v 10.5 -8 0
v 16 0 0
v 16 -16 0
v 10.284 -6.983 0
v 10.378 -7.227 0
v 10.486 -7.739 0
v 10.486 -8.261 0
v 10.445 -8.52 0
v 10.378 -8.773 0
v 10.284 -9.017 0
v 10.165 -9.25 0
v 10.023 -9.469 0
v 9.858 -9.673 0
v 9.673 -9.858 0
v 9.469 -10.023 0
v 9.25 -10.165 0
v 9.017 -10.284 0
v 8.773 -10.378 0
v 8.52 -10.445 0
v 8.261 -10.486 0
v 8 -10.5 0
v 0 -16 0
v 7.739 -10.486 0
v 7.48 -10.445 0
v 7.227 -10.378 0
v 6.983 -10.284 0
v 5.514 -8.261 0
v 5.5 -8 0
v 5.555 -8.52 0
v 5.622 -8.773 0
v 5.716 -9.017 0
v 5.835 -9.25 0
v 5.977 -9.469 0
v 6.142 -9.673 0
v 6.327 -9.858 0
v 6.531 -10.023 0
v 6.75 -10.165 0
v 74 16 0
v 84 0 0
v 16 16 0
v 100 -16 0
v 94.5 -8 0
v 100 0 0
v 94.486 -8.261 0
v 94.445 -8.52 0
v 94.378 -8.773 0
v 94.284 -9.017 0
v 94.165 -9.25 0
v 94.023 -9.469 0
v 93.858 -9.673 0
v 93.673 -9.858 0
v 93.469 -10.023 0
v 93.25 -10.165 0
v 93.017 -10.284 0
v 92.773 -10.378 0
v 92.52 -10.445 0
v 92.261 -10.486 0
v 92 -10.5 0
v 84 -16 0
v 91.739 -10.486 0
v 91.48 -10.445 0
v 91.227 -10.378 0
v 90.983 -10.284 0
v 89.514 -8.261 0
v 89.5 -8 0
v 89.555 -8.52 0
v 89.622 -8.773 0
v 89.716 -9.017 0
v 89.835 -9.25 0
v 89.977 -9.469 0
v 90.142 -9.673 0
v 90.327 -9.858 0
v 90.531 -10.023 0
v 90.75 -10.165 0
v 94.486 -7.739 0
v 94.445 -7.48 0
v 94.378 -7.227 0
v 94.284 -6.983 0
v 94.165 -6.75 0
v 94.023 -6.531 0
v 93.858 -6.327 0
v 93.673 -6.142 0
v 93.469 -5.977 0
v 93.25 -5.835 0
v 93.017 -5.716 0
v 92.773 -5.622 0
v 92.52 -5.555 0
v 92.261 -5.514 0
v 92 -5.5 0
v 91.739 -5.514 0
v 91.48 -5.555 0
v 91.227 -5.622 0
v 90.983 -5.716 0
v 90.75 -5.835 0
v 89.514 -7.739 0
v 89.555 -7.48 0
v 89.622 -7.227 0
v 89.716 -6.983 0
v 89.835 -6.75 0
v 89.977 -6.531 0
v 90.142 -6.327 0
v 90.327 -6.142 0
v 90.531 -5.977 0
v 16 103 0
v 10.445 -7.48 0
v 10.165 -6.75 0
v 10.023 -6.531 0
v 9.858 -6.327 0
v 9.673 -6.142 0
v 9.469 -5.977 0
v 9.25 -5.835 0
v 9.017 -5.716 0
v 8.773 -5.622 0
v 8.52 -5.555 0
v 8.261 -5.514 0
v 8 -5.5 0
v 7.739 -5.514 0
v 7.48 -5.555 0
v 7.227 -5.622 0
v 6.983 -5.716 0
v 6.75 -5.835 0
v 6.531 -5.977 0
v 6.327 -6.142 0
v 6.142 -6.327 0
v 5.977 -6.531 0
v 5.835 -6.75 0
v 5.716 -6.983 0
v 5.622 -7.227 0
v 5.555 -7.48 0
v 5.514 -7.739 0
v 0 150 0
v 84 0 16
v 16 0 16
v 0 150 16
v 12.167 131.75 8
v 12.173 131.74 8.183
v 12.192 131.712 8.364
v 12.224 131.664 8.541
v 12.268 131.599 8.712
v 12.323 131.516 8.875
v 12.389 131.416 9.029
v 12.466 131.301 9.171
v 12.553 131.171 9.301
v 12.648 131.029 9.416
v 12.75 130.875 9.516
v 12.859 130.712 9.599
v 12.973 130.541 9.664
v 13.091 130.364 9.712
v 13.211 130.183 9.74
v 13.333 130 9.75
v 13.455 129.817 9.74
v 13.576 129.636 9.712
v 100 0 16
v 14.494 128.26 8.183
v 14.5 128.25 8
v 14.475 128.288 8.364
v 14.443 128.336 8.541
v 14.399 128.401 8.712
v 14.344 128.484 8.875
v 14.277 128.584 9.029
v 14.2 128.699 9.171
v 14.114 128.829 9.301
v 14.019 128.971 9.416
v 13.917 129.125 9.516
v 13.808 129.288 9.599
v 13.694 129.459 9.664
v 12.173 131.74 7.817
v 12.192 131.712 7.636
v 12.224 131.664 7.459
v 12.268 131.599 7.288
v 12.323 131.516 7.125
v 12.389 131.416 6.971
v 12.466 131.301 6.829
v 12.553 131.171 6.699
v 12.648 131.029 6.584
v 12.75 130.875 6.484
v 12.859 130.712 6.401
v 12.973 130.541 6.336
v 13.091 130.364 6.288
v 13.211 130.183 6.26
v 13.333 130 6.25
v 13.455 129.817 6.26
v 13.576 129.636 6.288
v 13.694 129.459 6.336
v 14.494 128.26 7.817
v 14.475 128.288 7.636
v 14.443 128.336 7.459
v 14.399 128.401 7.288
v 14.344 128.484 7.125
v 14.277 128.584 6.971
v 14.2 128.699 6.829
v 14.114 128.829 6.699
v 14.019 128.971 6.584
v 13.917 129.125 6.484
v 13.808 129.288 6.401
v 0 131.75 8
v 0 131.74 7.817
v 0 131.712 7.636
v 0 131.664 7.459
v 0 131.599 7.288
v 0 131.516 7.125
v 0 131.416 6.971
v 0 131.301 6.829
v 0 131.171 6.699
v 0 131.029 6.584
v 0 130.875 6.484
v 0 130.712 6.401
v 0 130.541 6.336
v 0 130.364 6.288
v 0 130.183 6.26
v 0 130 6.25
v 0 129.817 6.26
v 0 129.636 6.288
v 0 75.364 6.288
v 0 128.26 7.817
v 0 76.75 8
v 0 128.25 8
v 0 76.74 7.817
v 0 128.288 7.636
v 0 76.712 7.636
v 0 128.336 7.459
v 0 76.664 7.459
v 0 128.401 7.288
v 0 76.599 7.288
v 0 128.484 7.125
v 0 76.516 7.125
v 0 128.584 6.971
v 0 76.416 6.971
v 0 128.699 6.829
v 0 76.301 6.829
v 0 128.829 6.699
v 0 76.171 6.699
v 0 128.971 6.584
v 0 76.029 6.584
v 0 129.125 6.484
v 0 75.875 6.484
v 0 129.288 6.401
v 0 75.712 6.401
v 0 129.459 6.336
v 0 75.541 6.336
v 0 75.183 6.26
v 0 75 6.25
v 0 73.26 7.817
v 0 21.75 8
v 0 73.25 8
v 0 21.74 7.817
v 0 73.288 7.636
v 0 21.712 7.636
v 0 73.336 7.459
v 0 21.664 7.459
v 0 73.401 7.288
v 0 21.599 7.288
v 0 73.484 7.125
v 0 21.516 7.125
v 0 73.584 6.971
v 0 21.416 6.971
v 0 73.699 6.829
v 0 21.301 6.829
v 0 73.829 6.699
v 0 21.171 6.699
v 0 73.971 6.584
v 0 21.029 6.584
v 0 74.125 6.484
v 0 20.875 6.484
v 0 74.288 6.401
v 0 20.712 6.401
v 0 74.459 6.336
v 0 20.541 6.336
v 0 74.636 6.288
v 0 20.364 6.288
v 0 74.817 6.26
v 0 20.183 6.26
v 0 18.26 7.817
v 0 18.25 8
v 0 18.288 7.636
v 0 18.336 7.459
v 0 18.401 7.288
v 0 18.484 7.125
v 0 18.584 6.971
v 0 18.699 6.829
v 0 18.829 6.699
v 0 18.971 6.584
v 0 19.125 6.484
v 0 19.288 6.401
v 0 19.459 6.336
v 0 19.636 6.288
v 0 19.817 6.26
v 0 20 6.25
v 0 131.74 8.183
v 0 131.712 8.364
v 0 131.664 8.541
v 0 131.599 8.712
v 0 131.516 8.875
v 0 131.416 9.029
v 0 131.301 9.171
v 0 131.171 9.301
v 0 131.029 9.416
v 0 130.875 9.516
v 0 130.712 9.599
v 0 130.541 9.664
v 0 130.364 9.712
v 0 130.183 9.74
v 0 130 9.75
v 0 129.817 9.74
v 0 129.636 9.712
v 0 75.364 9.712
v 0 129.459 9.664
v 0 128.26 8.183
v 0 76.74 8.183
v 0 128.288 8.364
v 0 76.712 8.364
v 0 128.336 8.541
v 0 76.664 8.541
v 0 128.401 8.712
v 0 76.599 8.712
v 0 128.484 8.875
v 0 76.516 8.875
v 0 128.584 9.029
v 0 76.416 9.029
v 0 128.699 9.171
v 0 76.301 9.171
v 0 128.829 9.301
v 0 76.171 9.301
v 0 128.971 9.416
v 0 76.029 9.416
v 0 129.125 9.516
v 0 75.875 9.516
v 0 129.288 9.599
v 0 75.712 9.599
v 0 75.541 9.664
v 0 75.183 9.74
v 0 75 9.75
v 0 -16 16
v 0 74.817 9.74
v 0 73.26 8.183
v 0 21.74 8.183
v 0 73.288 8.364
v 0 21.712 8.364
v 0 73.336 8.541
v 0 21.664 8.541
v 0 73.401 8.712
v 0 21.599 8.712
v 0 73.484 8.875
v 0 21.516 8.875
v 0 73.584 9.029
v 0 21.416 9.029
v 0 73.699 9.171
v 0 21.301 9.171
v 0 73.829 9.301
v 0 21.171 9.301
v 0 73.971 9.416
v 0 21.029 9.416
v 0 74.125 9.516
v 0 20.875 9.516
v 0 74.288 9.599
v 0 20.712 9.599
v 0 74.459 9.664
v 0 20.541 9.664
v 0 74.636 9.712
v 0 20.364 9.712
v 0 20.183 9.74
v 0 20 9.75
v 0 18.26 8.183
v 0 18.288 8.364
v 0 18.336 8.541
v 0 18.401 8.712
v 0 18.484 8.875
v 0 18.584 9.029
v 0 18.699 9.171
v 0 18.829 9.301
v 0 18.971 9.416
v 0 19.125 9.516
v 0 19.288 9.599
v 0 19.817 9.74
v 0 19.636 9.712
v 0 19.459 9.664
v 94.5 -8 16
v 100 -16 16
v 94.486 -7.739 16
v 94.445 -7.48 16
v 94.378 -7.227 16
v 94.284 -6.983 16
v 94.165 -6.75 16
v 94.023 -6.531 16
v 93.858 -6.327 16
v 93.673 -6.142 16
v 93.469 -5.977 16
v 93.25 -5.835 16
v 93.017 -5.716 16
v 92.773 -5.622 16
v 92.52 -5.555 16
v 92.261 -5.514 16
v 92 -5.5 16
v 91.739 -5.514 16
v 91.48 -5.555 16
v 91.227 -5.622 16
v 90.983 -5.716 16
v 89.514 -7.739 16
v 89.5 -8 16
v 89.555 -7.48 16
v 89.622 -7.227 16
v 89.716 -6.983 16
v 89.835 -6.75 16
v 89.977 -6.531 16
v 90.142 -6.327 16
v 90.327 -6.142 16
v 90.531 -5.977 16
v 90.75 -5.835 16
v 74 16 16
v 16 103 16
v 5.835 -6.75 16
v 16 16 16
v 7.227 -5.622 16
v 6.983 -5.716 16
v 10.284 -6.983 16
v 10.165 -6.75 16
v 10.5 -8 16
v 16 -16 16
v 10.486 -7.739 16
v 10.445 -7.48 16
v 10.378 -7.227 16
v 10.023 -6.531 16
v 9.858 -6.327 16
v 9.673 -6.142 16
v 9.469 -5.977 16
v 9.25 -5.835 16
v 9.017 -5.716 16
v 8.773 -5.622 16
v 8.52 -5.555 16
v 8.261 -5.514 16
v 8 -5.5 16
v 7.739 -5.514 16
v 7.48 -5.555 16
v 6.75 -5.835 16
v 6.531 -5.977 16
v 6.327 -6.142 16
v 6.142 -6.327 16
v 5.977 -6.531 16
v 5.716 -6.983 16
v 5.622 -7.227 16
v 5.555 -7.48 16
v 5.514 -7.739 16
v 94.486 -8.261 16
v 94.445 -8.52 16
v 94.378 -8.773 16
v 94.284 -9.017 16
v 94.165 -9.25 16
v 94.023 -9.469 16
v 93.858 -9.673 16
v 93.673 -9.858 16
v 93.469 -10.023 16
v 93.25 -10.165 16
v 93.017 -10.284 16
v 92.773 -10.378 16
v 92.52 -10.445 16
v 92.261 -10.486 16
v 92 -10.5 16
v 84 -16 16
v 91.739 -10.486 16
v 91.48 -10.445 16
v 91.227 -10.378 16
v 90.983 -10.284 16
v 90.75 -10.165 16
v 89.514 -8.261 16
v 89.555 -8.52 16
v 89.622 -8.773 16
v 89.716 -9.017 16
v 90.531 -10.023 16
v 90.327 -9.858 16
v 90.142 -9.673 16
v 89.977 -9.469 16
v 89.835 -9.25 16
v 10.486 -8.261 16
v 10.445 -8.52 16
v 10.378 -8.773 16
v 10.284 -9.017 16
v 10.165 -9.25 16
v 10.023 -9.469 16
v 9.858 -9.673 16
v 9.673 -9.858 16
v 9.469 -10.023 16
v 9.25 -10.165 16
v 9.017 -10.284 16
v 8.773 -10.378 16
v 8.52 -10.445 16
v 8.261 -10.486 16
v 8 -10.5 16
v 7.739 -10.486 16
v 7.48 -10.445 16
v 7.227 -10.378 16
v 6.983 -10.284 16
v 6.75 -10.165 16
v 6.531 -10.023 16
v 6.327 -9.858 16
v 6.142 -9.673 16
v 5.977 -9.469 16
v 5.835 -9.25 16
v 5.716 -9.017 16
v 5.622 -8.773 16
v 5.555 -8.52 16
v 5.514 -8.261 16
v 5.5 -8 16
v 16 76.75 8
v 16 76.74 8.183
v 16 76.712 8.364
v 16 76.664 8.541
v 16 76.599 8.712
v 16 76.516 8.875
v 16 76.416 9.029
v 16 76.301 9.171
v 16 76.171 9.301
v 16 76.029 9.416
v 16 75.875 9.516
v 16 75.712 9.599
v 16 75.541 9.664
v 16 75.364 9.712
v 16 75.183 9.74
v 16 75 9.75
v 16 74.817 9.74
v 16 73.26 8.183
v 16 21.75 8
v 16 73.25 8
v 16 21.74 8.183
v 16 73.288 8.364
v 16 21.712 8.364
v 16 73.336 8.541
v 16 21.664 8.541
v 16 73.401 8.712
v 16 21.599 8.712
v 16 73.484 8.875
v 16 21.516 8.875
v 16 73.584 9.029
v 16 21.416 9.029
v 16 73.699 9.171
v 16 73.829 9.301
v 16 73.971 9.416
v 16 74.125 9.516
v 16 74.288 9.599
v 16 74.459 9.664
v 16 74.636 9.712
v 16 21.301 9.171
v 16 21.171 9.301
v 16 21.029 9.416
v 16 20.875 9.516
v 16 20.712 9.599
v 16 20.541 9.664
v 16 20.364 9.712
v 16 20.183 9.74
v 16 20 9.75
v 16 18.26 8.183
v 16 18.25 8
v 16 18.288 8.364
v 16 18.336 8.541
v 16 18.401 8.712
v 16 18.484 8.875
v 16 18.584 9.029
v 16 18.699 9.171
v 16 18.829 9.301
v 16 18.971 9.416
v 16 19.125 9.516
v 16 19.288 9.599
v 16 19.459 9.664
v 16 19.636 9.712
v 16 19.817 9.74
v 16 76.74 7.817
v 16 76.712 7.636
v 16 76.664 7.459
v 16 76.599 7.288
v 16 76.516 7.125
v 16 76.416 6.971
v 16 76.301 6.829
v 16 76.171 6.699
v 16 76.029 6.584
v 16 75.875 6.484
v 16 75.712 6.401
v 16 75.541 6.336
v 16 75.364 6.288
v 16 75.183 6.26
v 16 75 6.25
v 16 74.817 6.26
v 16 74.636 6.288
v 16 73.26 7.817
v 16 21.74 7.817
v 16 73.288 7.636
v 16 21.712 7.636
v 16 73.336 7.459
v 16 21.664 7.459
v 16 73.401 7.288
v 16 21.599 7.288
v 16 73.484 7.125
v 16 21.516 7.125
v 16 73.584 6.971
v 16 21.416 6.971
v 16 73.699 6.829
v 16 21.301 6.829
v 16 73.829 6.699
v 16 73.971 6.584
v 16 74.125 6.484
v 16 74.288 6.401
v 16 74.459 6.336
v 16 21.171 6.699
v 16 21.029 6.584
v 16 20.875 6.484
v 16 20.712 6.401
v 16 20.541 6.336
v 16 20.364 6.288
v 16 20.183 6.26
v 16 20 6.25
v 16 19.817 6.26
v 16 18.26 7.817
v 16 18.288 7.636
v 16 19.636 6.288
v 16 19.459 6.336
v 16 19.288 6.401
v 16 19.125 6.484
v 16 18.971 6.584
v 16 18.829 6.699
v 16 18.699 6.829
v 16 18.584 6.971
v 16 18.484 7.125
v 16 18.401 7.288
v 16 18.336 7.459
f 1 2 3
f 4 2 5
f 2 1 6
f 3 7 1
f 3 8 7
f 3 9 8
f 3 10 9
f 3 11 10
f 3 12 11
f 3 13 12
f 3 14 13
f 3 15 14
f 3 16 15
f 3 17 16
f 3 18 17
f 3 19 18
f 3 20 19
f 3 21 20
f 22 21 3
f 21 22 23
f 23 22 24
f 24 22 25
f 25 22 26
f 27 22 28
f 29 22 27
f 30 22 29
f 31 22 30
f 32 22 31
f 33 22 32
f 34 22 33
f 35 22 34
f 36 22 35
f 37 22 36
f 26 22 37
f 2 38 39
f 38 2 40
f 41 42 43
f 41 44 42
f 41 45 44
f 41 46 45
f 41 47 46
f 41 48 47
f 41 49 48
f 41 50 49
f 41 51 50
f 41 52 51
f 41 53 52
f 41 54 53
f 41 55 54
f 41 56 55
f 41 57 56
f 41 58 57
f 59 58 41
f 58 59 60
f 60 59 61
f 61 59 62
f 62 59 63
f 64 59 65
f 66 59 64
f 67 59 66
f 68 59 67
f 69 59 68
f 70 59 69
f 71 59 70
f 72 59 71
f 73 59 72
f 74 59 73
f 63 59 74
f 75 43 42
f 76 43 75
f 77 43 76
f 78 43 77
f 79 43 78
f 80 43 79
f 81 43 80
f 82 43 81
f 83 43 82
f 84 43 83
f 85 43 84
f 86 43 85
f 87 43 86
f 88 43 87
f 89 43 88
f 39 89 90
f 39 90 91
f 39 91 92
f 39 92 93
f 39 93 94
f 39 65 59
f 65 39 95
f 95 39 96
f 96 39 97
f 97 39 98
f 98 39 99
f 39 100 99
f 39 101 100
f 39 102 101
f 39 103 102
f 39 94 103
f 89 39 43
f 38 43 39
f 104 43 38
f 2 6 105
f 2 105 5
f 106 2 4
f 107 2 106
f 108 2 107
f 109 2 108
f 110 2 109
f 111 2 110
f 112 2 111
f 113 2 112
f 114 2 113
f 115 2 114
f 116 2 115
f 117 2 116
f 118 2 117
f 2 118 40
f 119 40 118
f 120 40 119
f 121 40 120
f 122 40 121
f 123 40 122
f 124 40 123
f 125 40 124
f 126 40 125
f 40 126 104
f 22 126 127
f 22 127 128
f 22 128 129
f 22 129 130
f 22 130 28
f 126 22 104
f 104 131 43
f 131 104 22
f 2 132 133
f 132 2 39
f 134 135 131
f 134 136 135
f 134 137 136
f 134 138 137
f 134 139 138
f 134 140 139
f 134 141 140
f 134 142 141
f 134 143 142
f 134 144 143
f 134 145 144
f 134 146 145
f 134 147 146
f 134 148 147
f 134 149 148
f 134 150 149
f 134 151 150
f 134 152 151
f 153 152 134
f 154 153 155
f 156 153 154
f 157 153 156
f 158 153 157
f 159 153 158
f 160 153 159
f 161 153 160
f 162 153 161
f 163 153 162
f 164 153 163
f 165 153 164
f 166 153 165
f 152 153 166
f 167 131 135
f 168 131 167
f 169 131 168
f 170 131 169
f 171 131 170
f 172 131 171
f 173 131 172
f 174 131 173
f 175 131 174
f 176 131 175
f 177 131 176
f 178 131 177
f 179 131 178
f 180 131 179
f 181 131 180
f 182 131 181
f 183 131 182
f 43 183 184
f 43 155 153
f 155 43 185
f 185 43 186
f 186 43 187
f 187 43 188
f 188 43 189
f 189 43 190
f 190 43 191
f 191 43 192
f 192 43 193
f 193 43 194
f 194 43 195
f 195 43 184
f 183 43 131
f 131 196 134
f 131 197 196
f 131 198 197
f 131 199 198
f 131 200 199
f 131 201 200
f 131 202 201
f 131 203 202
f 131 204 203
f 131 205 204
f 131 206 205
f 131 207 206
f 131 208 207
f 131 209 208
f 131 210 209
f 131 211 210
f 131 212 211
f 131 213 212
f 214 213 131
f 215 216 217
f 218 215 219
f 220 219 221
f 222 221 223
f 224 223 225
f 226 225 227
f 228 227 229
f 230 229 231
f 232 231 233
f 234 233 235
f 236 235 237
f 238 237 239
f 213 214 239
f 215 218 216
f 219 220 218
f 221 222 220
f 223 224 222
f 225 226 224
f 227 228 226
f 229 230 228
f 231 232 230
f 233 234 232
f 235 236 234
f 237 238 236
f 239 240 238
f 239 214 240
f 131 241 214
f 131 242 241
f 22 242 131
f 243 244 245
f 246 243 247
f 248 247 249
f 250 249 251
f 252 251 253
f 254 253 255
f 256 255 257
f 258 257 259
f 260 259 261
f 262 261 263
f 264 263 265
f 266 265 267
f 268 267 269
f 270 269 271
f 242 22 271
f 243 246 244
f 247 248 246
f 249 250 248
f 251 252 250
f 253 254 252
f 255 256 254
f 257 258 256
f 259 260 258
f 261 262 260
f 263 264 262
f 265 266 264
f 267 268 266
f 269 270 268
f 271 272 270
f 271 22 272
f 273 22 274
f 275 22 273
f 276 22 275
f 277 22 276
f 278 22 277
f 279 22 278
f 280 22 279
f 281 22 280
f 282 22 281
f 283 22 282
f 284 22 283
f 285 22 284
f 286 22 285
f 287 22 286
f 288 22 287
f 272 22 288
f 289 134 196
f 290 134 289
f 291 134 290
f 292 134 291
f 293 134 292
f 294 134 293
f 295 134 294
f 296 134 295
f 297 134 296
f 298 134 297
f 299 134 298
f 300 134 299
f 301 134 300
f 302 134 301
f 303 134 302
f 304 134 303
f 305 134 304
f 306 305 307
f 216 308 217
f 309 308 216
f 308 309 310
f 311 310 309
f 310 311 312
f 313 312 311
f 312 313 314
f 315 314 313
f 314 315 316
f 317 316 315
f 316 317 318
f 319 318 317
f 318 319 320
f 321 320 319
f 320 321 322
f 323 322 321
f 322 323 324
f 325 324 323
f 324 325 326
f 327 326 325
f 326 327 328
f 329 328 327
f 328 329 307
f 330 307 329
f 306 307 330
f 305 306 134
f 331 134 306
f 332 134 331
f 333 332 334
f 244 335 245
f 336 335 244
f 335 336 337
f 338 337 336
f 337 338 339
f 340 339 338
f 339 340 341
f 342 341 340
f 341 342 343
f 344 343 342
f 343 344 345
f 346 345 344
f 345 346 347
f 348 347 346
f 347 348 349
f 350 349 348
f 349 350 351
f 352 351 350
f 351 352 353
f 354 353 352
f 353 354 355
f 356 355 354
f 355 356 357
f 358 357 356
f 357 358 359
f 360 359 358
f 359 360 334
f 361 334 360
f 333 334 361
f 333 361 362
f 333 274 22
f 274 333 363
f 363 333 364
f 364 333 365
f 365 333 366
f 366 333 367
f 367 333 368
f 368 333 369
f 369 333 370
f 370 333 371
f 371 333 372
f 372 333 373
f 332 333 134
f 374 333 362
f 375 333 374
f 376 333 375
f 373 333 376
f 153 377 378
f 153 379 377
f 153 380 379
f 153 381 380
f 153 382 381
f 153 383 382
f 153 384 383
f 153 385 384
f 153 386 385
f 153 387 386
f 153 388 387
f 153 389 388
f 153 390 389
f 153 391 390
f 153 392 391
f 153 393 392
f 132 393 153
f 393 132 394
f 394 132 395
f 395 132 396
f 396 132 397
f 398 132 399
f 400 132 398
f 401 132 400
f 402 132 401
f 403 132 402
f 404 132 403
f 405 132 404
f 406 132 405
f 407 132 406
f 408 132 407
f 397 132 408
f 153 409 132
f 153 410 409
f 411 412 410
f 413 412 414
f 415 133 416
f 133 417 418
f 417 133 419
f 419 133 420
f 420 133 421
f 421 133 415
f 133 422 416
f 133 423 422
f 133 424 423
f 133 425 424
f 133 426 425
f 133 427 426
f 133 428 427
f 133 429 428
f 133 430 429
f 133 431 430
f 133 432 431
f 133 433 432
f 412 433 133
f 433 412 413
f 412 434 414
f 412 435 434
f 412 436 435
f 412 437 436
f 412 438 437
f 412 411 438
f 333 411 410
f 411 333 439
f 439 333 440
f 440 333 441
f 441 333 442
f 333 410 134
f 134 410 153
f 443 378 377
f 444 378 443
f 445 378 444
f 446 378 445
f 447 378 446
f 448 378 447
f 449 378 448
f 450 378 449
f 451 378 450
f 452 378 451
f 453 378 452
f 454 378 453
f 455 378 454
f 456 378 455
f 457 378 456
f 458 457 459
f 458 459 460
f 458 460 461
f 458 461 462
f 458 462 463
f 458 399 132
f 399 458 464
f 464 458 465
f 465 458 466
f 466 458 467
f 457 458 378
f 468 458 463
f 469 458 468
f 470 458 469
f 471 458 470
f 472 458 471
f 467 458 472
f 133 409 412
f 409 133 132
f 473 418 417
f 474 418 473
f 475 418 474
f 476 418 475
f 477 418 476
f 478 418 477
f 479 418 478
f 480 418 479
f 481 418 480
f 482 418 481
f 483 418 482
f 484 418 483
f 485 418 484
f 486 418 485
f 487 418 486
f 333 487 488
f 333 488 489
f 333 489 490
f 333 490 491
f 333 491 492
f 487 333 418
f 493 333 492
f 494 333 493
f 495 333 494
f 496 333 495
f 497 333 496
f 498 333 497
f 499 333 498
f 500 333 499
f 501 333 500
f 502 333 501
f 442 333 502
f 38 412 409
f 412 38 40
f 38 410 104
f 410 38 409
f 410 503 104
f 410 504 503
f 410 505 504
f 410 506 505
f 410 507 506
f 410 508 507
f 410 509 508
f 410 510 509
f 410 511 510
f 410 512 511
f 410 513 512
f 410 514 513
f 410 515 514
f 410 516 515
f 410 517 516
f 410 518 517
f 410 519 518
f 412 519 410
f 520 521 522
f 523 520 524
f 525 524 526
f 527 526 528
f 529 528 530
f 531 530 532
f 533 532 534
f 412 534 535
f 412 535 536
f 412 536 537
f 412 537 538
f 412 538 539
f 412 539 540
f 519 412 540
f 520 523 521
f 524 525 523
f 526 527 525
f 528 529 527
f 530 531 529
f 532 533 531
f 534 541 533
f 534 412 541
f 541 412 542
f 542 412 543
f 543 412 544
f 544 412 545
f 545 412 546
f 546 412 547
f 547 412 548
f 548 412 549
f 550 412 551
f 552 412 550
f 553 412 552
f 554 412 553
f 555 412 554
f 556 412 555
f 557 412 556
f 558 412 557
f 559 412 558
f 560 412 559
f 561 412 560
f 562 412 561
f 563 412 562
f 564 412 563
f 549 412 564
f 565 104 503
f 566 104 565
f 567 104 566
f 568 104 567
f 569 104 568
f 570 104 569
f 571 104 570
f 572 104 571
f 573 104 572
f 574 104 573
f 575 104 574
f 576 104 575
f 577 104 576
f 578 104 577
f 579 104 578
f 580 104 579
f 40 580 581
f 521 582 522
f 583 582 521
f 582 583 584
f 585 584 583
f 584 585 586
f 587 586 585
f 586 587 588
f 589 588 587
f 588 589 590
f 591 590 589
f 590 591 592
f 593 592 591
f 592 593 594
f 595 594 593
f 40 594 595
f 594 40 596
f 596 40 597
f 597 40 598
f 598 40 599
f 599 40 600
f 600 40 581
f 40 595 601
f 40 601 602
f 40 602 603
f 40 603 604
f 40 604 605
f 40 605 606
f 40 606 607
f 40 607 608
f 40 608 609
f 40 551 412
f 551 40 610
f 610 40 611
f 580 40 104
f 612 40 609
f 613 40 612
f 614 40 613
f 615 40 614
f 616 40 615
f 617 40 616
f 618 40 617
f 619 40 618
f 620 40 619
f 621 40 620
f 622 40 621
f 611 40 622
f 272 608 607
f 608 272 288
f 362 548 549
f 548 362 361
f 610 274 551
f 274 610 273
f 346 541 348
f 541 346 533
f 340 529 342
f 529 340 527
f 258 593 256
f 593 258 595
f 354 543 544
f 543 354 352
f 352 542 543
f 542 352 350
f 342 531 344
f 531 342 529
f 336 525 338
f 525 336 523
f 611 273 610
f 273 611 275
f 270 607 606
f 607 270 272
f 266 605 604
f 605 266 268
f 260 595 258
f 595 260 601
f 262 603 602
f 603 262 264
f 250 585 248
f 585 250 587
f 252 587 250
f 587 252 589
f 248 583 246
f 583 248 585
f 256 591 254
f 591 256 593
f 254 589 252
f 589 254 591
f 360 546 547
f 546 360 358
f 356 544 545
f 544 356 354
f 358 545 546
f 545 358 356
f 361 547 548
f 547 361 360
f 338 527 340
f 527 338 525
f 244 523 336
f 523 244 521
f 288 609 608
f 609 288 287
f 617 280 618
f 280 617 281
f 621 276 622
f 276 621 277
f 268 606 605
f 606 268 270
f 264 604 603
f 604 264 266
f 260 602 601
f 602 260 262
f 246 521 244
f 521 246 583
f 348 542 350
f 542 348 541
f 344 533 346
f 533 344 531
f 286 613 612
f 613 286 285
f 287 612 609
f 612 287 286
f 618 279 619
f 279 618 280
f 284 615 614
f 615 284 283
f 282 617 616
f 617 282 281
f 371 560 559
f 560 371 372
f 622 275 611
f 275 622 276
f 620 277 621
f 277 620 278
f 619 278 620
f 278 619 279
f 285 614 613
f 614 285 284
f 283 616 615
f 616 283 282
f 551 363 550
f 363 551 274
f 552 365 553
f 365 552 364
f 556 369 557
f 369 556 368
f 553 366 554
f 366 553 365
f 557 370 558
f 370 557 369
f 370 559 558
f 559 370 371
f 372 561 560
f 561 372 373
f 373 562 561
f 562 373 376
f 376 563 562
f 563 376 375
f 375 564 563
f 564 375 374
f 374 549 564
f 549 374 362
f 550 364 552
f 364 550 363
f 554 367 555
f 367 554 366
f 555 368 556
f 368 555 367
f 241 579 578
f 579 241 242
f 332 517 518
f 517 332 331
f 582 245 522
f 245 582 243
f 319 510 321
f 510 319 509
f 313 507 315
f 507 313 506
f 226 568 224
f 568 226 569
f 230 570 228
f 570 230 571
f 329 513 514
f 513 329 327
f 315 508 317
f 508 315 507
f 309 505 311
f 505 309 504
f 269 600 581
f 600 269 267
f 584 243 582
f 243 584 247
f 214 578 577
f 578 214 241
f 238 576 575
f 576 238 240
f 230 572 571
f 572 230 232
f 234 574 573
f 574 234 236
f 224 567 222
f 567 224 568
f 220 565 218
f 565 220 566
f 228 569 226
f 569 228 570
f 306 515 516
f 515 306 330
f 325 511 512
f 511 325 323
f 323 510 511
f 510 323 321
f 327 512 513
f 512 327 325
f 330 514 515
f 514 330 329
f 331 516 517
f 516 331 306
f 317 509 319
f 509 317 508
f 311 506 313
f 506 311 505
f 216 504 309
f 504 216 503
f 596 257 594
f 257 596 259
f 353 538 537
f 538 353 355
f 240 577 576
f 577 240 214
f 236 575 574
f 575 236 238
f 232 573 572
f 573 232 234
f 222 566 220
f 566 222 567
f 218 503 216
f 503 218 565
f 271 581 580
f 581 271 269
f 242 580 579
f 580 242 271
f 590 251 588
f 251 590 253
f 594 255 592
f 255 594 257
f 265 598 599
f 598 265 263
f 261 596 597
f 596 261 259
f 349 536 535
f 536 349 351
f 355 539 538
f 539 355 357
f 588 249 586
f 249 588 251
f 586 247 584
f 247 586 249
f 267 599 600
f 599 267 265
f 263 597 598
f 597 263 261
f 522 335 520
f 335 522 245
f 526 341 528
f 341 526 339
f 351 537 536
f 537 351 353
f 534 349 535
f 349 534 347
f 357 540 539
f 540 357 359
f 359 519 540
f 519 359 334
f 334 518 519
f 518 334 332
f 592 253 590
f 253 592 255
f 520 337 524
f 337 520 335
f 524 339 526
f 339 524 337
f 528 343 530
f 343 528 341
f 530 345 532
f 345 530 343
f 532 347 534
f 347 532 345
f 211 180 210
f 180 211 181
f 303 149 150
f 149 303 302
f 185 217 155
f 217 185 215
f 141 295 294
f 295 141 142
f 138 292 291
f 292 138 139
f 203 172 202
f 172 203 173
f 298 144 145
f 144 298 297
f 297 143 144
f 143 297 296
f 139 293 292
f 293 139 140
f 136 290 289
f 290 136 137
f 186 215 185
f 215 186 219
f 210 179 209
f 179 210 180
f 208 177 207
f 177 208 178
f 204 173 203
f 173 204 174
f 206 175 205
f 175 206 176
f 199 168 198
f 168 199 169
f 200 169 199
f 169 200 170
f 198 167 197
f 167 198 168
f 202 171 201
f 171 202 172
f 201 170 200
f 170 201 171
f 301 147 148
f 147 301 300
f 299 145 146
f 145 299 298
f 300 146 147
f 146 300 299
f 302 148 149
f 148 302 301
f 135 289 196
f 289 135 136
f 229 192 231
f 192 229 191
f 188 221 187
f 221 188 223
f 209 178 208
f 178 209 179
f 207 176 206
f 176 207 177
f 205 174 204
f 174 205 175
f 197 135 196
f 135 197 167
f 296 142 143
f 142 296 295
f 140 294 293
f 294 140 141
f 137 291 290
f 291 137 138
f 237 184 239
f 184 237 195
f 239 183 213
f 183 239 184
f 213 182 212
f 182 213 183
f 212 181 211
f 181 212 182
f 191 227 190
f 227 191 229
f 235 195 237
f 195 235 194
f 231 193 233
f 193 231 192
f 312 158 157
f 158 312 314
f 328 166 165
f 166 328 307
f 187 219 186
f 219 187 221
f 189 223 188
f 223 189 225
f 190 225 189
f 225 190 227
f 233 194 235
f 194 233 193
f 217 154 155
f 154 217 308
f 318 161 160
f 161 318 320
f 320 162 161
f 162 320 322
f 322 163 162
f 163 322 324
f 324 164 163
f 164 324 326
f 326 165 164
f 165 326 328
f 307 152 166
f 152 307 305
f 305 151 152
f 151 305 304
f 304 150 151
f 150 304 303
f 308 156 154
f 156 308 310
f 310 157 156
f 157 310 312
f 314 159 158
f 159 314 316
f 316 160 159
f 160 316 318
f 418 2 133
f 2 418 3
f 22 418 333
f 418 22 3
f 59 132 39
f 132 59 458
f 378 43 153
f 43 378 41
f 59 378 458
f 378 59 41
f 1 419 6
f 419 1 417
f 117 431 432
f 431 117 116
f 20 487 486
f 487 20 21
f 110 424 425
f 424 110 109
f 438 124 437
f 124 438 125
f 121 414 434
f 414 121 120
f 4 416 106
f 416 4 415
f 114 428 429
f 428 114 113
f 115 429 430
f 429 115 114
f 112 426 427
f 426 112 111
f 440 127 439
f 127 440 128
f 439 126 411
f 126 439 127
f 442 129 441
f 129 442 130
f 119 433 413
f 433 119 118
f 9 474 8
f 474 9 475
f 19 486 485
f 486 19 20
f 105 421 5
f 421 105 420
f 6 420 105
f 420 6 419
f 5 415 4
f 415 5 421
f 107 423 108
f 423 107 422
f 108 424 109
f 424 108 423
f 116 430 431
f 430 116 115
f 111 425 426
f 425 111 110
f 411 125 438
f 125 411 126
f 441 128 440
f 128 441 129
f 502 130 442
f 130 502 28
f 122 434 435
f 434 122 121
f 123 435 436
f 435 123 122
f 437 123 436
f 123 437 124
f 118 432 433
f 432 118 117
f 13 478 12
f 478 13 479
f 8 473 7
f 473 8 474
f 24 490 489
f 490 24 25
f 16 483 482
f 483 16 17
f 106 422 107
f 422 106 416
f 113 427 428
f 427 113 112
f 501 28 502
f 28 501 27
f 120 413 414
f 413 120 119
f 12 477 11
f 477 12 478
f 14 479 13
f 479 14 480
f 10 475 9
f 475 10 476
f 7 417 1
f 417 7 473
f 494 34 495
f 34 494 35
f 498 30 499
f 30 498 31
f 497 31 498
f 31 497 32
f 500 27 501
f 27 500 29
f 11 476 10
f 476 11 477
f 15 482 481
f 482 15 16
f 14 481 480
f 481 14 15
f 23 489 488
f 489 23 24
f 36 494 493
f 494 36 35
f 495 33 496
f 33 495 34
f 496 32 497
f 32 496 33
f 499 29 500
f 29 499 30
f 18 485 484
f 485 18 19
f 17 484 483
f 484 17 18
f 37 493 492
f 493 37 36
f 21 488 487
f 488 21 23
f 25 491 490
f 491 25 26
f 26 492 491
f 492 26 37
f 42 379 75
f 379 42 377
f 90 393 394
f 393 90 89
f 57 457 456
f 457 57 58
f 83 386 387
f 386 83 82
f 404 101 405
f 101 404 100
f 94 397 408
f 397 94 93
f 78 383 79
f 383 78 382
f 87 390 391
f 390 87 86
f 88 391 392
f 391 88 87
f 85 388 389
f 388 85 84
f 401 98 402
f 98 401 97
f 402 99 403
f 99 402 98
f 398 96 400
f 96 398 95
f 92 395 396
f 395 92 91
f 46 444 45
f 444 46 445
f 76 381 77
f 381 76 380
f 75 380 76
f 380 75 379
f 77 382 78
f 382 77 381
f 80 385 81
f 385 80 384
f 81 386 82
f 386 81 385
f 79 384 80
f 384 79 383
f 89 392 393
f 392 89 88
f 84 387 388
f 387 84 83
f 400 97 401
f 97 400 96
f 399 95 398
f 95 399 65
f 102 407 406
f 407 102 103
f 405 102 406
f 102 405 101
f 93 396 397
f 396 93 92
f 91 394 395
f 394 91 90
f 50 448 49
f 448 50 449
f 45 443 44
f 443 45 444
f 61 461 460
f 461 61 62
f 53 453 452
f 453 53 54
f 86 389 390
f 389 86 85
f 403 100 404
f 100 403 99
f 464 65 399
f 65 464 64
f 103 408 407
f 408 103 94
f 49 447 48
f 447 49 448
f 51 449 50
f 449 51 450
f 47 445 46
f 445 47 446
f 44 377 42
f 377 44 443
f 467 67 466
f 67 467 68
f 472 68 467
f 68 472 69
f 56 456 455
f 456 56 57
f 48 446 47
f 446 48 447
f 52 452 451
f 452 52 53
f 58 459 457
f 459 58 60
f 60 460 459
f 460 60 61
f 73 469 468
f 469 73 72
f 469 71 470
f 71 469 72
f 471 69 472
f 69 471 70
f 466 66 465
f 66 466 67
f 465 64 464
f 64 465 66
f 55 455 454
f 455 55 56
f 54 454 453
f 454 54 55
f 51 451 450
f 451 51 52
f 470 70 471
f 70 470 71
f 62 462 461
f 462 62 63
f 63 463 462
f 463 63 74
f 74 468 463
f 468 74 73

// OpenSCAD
$fn=60;
difference(){
linear_extrude(16)
polygon(points=[[0,0],[100,0],[0,150]]);
translate([0,0,-1])linear_extrude(20)
polygon(points=[[16,16],[74,16],[16,103]]);
translate([-1,20,8])rotate([0,90,0])cylinder(d=3.5,h=17);
translate([-1,75,8])rotate([0,90,0])cylinder(d=3.5,h=17);
translate([-1,130,8])rotate([0,90,0])cylinder(d=3.5,h=17);
}
difference(){
union(){
translate([0,-16,0])cube([16,16,16]);
translate([84,-16,0])cube([16,16,16]);
}
translate([8,-8,-1])cylinder(d=5,h=20);
translate([92,-8,-1])cylinder(d=5,h=20);
}
